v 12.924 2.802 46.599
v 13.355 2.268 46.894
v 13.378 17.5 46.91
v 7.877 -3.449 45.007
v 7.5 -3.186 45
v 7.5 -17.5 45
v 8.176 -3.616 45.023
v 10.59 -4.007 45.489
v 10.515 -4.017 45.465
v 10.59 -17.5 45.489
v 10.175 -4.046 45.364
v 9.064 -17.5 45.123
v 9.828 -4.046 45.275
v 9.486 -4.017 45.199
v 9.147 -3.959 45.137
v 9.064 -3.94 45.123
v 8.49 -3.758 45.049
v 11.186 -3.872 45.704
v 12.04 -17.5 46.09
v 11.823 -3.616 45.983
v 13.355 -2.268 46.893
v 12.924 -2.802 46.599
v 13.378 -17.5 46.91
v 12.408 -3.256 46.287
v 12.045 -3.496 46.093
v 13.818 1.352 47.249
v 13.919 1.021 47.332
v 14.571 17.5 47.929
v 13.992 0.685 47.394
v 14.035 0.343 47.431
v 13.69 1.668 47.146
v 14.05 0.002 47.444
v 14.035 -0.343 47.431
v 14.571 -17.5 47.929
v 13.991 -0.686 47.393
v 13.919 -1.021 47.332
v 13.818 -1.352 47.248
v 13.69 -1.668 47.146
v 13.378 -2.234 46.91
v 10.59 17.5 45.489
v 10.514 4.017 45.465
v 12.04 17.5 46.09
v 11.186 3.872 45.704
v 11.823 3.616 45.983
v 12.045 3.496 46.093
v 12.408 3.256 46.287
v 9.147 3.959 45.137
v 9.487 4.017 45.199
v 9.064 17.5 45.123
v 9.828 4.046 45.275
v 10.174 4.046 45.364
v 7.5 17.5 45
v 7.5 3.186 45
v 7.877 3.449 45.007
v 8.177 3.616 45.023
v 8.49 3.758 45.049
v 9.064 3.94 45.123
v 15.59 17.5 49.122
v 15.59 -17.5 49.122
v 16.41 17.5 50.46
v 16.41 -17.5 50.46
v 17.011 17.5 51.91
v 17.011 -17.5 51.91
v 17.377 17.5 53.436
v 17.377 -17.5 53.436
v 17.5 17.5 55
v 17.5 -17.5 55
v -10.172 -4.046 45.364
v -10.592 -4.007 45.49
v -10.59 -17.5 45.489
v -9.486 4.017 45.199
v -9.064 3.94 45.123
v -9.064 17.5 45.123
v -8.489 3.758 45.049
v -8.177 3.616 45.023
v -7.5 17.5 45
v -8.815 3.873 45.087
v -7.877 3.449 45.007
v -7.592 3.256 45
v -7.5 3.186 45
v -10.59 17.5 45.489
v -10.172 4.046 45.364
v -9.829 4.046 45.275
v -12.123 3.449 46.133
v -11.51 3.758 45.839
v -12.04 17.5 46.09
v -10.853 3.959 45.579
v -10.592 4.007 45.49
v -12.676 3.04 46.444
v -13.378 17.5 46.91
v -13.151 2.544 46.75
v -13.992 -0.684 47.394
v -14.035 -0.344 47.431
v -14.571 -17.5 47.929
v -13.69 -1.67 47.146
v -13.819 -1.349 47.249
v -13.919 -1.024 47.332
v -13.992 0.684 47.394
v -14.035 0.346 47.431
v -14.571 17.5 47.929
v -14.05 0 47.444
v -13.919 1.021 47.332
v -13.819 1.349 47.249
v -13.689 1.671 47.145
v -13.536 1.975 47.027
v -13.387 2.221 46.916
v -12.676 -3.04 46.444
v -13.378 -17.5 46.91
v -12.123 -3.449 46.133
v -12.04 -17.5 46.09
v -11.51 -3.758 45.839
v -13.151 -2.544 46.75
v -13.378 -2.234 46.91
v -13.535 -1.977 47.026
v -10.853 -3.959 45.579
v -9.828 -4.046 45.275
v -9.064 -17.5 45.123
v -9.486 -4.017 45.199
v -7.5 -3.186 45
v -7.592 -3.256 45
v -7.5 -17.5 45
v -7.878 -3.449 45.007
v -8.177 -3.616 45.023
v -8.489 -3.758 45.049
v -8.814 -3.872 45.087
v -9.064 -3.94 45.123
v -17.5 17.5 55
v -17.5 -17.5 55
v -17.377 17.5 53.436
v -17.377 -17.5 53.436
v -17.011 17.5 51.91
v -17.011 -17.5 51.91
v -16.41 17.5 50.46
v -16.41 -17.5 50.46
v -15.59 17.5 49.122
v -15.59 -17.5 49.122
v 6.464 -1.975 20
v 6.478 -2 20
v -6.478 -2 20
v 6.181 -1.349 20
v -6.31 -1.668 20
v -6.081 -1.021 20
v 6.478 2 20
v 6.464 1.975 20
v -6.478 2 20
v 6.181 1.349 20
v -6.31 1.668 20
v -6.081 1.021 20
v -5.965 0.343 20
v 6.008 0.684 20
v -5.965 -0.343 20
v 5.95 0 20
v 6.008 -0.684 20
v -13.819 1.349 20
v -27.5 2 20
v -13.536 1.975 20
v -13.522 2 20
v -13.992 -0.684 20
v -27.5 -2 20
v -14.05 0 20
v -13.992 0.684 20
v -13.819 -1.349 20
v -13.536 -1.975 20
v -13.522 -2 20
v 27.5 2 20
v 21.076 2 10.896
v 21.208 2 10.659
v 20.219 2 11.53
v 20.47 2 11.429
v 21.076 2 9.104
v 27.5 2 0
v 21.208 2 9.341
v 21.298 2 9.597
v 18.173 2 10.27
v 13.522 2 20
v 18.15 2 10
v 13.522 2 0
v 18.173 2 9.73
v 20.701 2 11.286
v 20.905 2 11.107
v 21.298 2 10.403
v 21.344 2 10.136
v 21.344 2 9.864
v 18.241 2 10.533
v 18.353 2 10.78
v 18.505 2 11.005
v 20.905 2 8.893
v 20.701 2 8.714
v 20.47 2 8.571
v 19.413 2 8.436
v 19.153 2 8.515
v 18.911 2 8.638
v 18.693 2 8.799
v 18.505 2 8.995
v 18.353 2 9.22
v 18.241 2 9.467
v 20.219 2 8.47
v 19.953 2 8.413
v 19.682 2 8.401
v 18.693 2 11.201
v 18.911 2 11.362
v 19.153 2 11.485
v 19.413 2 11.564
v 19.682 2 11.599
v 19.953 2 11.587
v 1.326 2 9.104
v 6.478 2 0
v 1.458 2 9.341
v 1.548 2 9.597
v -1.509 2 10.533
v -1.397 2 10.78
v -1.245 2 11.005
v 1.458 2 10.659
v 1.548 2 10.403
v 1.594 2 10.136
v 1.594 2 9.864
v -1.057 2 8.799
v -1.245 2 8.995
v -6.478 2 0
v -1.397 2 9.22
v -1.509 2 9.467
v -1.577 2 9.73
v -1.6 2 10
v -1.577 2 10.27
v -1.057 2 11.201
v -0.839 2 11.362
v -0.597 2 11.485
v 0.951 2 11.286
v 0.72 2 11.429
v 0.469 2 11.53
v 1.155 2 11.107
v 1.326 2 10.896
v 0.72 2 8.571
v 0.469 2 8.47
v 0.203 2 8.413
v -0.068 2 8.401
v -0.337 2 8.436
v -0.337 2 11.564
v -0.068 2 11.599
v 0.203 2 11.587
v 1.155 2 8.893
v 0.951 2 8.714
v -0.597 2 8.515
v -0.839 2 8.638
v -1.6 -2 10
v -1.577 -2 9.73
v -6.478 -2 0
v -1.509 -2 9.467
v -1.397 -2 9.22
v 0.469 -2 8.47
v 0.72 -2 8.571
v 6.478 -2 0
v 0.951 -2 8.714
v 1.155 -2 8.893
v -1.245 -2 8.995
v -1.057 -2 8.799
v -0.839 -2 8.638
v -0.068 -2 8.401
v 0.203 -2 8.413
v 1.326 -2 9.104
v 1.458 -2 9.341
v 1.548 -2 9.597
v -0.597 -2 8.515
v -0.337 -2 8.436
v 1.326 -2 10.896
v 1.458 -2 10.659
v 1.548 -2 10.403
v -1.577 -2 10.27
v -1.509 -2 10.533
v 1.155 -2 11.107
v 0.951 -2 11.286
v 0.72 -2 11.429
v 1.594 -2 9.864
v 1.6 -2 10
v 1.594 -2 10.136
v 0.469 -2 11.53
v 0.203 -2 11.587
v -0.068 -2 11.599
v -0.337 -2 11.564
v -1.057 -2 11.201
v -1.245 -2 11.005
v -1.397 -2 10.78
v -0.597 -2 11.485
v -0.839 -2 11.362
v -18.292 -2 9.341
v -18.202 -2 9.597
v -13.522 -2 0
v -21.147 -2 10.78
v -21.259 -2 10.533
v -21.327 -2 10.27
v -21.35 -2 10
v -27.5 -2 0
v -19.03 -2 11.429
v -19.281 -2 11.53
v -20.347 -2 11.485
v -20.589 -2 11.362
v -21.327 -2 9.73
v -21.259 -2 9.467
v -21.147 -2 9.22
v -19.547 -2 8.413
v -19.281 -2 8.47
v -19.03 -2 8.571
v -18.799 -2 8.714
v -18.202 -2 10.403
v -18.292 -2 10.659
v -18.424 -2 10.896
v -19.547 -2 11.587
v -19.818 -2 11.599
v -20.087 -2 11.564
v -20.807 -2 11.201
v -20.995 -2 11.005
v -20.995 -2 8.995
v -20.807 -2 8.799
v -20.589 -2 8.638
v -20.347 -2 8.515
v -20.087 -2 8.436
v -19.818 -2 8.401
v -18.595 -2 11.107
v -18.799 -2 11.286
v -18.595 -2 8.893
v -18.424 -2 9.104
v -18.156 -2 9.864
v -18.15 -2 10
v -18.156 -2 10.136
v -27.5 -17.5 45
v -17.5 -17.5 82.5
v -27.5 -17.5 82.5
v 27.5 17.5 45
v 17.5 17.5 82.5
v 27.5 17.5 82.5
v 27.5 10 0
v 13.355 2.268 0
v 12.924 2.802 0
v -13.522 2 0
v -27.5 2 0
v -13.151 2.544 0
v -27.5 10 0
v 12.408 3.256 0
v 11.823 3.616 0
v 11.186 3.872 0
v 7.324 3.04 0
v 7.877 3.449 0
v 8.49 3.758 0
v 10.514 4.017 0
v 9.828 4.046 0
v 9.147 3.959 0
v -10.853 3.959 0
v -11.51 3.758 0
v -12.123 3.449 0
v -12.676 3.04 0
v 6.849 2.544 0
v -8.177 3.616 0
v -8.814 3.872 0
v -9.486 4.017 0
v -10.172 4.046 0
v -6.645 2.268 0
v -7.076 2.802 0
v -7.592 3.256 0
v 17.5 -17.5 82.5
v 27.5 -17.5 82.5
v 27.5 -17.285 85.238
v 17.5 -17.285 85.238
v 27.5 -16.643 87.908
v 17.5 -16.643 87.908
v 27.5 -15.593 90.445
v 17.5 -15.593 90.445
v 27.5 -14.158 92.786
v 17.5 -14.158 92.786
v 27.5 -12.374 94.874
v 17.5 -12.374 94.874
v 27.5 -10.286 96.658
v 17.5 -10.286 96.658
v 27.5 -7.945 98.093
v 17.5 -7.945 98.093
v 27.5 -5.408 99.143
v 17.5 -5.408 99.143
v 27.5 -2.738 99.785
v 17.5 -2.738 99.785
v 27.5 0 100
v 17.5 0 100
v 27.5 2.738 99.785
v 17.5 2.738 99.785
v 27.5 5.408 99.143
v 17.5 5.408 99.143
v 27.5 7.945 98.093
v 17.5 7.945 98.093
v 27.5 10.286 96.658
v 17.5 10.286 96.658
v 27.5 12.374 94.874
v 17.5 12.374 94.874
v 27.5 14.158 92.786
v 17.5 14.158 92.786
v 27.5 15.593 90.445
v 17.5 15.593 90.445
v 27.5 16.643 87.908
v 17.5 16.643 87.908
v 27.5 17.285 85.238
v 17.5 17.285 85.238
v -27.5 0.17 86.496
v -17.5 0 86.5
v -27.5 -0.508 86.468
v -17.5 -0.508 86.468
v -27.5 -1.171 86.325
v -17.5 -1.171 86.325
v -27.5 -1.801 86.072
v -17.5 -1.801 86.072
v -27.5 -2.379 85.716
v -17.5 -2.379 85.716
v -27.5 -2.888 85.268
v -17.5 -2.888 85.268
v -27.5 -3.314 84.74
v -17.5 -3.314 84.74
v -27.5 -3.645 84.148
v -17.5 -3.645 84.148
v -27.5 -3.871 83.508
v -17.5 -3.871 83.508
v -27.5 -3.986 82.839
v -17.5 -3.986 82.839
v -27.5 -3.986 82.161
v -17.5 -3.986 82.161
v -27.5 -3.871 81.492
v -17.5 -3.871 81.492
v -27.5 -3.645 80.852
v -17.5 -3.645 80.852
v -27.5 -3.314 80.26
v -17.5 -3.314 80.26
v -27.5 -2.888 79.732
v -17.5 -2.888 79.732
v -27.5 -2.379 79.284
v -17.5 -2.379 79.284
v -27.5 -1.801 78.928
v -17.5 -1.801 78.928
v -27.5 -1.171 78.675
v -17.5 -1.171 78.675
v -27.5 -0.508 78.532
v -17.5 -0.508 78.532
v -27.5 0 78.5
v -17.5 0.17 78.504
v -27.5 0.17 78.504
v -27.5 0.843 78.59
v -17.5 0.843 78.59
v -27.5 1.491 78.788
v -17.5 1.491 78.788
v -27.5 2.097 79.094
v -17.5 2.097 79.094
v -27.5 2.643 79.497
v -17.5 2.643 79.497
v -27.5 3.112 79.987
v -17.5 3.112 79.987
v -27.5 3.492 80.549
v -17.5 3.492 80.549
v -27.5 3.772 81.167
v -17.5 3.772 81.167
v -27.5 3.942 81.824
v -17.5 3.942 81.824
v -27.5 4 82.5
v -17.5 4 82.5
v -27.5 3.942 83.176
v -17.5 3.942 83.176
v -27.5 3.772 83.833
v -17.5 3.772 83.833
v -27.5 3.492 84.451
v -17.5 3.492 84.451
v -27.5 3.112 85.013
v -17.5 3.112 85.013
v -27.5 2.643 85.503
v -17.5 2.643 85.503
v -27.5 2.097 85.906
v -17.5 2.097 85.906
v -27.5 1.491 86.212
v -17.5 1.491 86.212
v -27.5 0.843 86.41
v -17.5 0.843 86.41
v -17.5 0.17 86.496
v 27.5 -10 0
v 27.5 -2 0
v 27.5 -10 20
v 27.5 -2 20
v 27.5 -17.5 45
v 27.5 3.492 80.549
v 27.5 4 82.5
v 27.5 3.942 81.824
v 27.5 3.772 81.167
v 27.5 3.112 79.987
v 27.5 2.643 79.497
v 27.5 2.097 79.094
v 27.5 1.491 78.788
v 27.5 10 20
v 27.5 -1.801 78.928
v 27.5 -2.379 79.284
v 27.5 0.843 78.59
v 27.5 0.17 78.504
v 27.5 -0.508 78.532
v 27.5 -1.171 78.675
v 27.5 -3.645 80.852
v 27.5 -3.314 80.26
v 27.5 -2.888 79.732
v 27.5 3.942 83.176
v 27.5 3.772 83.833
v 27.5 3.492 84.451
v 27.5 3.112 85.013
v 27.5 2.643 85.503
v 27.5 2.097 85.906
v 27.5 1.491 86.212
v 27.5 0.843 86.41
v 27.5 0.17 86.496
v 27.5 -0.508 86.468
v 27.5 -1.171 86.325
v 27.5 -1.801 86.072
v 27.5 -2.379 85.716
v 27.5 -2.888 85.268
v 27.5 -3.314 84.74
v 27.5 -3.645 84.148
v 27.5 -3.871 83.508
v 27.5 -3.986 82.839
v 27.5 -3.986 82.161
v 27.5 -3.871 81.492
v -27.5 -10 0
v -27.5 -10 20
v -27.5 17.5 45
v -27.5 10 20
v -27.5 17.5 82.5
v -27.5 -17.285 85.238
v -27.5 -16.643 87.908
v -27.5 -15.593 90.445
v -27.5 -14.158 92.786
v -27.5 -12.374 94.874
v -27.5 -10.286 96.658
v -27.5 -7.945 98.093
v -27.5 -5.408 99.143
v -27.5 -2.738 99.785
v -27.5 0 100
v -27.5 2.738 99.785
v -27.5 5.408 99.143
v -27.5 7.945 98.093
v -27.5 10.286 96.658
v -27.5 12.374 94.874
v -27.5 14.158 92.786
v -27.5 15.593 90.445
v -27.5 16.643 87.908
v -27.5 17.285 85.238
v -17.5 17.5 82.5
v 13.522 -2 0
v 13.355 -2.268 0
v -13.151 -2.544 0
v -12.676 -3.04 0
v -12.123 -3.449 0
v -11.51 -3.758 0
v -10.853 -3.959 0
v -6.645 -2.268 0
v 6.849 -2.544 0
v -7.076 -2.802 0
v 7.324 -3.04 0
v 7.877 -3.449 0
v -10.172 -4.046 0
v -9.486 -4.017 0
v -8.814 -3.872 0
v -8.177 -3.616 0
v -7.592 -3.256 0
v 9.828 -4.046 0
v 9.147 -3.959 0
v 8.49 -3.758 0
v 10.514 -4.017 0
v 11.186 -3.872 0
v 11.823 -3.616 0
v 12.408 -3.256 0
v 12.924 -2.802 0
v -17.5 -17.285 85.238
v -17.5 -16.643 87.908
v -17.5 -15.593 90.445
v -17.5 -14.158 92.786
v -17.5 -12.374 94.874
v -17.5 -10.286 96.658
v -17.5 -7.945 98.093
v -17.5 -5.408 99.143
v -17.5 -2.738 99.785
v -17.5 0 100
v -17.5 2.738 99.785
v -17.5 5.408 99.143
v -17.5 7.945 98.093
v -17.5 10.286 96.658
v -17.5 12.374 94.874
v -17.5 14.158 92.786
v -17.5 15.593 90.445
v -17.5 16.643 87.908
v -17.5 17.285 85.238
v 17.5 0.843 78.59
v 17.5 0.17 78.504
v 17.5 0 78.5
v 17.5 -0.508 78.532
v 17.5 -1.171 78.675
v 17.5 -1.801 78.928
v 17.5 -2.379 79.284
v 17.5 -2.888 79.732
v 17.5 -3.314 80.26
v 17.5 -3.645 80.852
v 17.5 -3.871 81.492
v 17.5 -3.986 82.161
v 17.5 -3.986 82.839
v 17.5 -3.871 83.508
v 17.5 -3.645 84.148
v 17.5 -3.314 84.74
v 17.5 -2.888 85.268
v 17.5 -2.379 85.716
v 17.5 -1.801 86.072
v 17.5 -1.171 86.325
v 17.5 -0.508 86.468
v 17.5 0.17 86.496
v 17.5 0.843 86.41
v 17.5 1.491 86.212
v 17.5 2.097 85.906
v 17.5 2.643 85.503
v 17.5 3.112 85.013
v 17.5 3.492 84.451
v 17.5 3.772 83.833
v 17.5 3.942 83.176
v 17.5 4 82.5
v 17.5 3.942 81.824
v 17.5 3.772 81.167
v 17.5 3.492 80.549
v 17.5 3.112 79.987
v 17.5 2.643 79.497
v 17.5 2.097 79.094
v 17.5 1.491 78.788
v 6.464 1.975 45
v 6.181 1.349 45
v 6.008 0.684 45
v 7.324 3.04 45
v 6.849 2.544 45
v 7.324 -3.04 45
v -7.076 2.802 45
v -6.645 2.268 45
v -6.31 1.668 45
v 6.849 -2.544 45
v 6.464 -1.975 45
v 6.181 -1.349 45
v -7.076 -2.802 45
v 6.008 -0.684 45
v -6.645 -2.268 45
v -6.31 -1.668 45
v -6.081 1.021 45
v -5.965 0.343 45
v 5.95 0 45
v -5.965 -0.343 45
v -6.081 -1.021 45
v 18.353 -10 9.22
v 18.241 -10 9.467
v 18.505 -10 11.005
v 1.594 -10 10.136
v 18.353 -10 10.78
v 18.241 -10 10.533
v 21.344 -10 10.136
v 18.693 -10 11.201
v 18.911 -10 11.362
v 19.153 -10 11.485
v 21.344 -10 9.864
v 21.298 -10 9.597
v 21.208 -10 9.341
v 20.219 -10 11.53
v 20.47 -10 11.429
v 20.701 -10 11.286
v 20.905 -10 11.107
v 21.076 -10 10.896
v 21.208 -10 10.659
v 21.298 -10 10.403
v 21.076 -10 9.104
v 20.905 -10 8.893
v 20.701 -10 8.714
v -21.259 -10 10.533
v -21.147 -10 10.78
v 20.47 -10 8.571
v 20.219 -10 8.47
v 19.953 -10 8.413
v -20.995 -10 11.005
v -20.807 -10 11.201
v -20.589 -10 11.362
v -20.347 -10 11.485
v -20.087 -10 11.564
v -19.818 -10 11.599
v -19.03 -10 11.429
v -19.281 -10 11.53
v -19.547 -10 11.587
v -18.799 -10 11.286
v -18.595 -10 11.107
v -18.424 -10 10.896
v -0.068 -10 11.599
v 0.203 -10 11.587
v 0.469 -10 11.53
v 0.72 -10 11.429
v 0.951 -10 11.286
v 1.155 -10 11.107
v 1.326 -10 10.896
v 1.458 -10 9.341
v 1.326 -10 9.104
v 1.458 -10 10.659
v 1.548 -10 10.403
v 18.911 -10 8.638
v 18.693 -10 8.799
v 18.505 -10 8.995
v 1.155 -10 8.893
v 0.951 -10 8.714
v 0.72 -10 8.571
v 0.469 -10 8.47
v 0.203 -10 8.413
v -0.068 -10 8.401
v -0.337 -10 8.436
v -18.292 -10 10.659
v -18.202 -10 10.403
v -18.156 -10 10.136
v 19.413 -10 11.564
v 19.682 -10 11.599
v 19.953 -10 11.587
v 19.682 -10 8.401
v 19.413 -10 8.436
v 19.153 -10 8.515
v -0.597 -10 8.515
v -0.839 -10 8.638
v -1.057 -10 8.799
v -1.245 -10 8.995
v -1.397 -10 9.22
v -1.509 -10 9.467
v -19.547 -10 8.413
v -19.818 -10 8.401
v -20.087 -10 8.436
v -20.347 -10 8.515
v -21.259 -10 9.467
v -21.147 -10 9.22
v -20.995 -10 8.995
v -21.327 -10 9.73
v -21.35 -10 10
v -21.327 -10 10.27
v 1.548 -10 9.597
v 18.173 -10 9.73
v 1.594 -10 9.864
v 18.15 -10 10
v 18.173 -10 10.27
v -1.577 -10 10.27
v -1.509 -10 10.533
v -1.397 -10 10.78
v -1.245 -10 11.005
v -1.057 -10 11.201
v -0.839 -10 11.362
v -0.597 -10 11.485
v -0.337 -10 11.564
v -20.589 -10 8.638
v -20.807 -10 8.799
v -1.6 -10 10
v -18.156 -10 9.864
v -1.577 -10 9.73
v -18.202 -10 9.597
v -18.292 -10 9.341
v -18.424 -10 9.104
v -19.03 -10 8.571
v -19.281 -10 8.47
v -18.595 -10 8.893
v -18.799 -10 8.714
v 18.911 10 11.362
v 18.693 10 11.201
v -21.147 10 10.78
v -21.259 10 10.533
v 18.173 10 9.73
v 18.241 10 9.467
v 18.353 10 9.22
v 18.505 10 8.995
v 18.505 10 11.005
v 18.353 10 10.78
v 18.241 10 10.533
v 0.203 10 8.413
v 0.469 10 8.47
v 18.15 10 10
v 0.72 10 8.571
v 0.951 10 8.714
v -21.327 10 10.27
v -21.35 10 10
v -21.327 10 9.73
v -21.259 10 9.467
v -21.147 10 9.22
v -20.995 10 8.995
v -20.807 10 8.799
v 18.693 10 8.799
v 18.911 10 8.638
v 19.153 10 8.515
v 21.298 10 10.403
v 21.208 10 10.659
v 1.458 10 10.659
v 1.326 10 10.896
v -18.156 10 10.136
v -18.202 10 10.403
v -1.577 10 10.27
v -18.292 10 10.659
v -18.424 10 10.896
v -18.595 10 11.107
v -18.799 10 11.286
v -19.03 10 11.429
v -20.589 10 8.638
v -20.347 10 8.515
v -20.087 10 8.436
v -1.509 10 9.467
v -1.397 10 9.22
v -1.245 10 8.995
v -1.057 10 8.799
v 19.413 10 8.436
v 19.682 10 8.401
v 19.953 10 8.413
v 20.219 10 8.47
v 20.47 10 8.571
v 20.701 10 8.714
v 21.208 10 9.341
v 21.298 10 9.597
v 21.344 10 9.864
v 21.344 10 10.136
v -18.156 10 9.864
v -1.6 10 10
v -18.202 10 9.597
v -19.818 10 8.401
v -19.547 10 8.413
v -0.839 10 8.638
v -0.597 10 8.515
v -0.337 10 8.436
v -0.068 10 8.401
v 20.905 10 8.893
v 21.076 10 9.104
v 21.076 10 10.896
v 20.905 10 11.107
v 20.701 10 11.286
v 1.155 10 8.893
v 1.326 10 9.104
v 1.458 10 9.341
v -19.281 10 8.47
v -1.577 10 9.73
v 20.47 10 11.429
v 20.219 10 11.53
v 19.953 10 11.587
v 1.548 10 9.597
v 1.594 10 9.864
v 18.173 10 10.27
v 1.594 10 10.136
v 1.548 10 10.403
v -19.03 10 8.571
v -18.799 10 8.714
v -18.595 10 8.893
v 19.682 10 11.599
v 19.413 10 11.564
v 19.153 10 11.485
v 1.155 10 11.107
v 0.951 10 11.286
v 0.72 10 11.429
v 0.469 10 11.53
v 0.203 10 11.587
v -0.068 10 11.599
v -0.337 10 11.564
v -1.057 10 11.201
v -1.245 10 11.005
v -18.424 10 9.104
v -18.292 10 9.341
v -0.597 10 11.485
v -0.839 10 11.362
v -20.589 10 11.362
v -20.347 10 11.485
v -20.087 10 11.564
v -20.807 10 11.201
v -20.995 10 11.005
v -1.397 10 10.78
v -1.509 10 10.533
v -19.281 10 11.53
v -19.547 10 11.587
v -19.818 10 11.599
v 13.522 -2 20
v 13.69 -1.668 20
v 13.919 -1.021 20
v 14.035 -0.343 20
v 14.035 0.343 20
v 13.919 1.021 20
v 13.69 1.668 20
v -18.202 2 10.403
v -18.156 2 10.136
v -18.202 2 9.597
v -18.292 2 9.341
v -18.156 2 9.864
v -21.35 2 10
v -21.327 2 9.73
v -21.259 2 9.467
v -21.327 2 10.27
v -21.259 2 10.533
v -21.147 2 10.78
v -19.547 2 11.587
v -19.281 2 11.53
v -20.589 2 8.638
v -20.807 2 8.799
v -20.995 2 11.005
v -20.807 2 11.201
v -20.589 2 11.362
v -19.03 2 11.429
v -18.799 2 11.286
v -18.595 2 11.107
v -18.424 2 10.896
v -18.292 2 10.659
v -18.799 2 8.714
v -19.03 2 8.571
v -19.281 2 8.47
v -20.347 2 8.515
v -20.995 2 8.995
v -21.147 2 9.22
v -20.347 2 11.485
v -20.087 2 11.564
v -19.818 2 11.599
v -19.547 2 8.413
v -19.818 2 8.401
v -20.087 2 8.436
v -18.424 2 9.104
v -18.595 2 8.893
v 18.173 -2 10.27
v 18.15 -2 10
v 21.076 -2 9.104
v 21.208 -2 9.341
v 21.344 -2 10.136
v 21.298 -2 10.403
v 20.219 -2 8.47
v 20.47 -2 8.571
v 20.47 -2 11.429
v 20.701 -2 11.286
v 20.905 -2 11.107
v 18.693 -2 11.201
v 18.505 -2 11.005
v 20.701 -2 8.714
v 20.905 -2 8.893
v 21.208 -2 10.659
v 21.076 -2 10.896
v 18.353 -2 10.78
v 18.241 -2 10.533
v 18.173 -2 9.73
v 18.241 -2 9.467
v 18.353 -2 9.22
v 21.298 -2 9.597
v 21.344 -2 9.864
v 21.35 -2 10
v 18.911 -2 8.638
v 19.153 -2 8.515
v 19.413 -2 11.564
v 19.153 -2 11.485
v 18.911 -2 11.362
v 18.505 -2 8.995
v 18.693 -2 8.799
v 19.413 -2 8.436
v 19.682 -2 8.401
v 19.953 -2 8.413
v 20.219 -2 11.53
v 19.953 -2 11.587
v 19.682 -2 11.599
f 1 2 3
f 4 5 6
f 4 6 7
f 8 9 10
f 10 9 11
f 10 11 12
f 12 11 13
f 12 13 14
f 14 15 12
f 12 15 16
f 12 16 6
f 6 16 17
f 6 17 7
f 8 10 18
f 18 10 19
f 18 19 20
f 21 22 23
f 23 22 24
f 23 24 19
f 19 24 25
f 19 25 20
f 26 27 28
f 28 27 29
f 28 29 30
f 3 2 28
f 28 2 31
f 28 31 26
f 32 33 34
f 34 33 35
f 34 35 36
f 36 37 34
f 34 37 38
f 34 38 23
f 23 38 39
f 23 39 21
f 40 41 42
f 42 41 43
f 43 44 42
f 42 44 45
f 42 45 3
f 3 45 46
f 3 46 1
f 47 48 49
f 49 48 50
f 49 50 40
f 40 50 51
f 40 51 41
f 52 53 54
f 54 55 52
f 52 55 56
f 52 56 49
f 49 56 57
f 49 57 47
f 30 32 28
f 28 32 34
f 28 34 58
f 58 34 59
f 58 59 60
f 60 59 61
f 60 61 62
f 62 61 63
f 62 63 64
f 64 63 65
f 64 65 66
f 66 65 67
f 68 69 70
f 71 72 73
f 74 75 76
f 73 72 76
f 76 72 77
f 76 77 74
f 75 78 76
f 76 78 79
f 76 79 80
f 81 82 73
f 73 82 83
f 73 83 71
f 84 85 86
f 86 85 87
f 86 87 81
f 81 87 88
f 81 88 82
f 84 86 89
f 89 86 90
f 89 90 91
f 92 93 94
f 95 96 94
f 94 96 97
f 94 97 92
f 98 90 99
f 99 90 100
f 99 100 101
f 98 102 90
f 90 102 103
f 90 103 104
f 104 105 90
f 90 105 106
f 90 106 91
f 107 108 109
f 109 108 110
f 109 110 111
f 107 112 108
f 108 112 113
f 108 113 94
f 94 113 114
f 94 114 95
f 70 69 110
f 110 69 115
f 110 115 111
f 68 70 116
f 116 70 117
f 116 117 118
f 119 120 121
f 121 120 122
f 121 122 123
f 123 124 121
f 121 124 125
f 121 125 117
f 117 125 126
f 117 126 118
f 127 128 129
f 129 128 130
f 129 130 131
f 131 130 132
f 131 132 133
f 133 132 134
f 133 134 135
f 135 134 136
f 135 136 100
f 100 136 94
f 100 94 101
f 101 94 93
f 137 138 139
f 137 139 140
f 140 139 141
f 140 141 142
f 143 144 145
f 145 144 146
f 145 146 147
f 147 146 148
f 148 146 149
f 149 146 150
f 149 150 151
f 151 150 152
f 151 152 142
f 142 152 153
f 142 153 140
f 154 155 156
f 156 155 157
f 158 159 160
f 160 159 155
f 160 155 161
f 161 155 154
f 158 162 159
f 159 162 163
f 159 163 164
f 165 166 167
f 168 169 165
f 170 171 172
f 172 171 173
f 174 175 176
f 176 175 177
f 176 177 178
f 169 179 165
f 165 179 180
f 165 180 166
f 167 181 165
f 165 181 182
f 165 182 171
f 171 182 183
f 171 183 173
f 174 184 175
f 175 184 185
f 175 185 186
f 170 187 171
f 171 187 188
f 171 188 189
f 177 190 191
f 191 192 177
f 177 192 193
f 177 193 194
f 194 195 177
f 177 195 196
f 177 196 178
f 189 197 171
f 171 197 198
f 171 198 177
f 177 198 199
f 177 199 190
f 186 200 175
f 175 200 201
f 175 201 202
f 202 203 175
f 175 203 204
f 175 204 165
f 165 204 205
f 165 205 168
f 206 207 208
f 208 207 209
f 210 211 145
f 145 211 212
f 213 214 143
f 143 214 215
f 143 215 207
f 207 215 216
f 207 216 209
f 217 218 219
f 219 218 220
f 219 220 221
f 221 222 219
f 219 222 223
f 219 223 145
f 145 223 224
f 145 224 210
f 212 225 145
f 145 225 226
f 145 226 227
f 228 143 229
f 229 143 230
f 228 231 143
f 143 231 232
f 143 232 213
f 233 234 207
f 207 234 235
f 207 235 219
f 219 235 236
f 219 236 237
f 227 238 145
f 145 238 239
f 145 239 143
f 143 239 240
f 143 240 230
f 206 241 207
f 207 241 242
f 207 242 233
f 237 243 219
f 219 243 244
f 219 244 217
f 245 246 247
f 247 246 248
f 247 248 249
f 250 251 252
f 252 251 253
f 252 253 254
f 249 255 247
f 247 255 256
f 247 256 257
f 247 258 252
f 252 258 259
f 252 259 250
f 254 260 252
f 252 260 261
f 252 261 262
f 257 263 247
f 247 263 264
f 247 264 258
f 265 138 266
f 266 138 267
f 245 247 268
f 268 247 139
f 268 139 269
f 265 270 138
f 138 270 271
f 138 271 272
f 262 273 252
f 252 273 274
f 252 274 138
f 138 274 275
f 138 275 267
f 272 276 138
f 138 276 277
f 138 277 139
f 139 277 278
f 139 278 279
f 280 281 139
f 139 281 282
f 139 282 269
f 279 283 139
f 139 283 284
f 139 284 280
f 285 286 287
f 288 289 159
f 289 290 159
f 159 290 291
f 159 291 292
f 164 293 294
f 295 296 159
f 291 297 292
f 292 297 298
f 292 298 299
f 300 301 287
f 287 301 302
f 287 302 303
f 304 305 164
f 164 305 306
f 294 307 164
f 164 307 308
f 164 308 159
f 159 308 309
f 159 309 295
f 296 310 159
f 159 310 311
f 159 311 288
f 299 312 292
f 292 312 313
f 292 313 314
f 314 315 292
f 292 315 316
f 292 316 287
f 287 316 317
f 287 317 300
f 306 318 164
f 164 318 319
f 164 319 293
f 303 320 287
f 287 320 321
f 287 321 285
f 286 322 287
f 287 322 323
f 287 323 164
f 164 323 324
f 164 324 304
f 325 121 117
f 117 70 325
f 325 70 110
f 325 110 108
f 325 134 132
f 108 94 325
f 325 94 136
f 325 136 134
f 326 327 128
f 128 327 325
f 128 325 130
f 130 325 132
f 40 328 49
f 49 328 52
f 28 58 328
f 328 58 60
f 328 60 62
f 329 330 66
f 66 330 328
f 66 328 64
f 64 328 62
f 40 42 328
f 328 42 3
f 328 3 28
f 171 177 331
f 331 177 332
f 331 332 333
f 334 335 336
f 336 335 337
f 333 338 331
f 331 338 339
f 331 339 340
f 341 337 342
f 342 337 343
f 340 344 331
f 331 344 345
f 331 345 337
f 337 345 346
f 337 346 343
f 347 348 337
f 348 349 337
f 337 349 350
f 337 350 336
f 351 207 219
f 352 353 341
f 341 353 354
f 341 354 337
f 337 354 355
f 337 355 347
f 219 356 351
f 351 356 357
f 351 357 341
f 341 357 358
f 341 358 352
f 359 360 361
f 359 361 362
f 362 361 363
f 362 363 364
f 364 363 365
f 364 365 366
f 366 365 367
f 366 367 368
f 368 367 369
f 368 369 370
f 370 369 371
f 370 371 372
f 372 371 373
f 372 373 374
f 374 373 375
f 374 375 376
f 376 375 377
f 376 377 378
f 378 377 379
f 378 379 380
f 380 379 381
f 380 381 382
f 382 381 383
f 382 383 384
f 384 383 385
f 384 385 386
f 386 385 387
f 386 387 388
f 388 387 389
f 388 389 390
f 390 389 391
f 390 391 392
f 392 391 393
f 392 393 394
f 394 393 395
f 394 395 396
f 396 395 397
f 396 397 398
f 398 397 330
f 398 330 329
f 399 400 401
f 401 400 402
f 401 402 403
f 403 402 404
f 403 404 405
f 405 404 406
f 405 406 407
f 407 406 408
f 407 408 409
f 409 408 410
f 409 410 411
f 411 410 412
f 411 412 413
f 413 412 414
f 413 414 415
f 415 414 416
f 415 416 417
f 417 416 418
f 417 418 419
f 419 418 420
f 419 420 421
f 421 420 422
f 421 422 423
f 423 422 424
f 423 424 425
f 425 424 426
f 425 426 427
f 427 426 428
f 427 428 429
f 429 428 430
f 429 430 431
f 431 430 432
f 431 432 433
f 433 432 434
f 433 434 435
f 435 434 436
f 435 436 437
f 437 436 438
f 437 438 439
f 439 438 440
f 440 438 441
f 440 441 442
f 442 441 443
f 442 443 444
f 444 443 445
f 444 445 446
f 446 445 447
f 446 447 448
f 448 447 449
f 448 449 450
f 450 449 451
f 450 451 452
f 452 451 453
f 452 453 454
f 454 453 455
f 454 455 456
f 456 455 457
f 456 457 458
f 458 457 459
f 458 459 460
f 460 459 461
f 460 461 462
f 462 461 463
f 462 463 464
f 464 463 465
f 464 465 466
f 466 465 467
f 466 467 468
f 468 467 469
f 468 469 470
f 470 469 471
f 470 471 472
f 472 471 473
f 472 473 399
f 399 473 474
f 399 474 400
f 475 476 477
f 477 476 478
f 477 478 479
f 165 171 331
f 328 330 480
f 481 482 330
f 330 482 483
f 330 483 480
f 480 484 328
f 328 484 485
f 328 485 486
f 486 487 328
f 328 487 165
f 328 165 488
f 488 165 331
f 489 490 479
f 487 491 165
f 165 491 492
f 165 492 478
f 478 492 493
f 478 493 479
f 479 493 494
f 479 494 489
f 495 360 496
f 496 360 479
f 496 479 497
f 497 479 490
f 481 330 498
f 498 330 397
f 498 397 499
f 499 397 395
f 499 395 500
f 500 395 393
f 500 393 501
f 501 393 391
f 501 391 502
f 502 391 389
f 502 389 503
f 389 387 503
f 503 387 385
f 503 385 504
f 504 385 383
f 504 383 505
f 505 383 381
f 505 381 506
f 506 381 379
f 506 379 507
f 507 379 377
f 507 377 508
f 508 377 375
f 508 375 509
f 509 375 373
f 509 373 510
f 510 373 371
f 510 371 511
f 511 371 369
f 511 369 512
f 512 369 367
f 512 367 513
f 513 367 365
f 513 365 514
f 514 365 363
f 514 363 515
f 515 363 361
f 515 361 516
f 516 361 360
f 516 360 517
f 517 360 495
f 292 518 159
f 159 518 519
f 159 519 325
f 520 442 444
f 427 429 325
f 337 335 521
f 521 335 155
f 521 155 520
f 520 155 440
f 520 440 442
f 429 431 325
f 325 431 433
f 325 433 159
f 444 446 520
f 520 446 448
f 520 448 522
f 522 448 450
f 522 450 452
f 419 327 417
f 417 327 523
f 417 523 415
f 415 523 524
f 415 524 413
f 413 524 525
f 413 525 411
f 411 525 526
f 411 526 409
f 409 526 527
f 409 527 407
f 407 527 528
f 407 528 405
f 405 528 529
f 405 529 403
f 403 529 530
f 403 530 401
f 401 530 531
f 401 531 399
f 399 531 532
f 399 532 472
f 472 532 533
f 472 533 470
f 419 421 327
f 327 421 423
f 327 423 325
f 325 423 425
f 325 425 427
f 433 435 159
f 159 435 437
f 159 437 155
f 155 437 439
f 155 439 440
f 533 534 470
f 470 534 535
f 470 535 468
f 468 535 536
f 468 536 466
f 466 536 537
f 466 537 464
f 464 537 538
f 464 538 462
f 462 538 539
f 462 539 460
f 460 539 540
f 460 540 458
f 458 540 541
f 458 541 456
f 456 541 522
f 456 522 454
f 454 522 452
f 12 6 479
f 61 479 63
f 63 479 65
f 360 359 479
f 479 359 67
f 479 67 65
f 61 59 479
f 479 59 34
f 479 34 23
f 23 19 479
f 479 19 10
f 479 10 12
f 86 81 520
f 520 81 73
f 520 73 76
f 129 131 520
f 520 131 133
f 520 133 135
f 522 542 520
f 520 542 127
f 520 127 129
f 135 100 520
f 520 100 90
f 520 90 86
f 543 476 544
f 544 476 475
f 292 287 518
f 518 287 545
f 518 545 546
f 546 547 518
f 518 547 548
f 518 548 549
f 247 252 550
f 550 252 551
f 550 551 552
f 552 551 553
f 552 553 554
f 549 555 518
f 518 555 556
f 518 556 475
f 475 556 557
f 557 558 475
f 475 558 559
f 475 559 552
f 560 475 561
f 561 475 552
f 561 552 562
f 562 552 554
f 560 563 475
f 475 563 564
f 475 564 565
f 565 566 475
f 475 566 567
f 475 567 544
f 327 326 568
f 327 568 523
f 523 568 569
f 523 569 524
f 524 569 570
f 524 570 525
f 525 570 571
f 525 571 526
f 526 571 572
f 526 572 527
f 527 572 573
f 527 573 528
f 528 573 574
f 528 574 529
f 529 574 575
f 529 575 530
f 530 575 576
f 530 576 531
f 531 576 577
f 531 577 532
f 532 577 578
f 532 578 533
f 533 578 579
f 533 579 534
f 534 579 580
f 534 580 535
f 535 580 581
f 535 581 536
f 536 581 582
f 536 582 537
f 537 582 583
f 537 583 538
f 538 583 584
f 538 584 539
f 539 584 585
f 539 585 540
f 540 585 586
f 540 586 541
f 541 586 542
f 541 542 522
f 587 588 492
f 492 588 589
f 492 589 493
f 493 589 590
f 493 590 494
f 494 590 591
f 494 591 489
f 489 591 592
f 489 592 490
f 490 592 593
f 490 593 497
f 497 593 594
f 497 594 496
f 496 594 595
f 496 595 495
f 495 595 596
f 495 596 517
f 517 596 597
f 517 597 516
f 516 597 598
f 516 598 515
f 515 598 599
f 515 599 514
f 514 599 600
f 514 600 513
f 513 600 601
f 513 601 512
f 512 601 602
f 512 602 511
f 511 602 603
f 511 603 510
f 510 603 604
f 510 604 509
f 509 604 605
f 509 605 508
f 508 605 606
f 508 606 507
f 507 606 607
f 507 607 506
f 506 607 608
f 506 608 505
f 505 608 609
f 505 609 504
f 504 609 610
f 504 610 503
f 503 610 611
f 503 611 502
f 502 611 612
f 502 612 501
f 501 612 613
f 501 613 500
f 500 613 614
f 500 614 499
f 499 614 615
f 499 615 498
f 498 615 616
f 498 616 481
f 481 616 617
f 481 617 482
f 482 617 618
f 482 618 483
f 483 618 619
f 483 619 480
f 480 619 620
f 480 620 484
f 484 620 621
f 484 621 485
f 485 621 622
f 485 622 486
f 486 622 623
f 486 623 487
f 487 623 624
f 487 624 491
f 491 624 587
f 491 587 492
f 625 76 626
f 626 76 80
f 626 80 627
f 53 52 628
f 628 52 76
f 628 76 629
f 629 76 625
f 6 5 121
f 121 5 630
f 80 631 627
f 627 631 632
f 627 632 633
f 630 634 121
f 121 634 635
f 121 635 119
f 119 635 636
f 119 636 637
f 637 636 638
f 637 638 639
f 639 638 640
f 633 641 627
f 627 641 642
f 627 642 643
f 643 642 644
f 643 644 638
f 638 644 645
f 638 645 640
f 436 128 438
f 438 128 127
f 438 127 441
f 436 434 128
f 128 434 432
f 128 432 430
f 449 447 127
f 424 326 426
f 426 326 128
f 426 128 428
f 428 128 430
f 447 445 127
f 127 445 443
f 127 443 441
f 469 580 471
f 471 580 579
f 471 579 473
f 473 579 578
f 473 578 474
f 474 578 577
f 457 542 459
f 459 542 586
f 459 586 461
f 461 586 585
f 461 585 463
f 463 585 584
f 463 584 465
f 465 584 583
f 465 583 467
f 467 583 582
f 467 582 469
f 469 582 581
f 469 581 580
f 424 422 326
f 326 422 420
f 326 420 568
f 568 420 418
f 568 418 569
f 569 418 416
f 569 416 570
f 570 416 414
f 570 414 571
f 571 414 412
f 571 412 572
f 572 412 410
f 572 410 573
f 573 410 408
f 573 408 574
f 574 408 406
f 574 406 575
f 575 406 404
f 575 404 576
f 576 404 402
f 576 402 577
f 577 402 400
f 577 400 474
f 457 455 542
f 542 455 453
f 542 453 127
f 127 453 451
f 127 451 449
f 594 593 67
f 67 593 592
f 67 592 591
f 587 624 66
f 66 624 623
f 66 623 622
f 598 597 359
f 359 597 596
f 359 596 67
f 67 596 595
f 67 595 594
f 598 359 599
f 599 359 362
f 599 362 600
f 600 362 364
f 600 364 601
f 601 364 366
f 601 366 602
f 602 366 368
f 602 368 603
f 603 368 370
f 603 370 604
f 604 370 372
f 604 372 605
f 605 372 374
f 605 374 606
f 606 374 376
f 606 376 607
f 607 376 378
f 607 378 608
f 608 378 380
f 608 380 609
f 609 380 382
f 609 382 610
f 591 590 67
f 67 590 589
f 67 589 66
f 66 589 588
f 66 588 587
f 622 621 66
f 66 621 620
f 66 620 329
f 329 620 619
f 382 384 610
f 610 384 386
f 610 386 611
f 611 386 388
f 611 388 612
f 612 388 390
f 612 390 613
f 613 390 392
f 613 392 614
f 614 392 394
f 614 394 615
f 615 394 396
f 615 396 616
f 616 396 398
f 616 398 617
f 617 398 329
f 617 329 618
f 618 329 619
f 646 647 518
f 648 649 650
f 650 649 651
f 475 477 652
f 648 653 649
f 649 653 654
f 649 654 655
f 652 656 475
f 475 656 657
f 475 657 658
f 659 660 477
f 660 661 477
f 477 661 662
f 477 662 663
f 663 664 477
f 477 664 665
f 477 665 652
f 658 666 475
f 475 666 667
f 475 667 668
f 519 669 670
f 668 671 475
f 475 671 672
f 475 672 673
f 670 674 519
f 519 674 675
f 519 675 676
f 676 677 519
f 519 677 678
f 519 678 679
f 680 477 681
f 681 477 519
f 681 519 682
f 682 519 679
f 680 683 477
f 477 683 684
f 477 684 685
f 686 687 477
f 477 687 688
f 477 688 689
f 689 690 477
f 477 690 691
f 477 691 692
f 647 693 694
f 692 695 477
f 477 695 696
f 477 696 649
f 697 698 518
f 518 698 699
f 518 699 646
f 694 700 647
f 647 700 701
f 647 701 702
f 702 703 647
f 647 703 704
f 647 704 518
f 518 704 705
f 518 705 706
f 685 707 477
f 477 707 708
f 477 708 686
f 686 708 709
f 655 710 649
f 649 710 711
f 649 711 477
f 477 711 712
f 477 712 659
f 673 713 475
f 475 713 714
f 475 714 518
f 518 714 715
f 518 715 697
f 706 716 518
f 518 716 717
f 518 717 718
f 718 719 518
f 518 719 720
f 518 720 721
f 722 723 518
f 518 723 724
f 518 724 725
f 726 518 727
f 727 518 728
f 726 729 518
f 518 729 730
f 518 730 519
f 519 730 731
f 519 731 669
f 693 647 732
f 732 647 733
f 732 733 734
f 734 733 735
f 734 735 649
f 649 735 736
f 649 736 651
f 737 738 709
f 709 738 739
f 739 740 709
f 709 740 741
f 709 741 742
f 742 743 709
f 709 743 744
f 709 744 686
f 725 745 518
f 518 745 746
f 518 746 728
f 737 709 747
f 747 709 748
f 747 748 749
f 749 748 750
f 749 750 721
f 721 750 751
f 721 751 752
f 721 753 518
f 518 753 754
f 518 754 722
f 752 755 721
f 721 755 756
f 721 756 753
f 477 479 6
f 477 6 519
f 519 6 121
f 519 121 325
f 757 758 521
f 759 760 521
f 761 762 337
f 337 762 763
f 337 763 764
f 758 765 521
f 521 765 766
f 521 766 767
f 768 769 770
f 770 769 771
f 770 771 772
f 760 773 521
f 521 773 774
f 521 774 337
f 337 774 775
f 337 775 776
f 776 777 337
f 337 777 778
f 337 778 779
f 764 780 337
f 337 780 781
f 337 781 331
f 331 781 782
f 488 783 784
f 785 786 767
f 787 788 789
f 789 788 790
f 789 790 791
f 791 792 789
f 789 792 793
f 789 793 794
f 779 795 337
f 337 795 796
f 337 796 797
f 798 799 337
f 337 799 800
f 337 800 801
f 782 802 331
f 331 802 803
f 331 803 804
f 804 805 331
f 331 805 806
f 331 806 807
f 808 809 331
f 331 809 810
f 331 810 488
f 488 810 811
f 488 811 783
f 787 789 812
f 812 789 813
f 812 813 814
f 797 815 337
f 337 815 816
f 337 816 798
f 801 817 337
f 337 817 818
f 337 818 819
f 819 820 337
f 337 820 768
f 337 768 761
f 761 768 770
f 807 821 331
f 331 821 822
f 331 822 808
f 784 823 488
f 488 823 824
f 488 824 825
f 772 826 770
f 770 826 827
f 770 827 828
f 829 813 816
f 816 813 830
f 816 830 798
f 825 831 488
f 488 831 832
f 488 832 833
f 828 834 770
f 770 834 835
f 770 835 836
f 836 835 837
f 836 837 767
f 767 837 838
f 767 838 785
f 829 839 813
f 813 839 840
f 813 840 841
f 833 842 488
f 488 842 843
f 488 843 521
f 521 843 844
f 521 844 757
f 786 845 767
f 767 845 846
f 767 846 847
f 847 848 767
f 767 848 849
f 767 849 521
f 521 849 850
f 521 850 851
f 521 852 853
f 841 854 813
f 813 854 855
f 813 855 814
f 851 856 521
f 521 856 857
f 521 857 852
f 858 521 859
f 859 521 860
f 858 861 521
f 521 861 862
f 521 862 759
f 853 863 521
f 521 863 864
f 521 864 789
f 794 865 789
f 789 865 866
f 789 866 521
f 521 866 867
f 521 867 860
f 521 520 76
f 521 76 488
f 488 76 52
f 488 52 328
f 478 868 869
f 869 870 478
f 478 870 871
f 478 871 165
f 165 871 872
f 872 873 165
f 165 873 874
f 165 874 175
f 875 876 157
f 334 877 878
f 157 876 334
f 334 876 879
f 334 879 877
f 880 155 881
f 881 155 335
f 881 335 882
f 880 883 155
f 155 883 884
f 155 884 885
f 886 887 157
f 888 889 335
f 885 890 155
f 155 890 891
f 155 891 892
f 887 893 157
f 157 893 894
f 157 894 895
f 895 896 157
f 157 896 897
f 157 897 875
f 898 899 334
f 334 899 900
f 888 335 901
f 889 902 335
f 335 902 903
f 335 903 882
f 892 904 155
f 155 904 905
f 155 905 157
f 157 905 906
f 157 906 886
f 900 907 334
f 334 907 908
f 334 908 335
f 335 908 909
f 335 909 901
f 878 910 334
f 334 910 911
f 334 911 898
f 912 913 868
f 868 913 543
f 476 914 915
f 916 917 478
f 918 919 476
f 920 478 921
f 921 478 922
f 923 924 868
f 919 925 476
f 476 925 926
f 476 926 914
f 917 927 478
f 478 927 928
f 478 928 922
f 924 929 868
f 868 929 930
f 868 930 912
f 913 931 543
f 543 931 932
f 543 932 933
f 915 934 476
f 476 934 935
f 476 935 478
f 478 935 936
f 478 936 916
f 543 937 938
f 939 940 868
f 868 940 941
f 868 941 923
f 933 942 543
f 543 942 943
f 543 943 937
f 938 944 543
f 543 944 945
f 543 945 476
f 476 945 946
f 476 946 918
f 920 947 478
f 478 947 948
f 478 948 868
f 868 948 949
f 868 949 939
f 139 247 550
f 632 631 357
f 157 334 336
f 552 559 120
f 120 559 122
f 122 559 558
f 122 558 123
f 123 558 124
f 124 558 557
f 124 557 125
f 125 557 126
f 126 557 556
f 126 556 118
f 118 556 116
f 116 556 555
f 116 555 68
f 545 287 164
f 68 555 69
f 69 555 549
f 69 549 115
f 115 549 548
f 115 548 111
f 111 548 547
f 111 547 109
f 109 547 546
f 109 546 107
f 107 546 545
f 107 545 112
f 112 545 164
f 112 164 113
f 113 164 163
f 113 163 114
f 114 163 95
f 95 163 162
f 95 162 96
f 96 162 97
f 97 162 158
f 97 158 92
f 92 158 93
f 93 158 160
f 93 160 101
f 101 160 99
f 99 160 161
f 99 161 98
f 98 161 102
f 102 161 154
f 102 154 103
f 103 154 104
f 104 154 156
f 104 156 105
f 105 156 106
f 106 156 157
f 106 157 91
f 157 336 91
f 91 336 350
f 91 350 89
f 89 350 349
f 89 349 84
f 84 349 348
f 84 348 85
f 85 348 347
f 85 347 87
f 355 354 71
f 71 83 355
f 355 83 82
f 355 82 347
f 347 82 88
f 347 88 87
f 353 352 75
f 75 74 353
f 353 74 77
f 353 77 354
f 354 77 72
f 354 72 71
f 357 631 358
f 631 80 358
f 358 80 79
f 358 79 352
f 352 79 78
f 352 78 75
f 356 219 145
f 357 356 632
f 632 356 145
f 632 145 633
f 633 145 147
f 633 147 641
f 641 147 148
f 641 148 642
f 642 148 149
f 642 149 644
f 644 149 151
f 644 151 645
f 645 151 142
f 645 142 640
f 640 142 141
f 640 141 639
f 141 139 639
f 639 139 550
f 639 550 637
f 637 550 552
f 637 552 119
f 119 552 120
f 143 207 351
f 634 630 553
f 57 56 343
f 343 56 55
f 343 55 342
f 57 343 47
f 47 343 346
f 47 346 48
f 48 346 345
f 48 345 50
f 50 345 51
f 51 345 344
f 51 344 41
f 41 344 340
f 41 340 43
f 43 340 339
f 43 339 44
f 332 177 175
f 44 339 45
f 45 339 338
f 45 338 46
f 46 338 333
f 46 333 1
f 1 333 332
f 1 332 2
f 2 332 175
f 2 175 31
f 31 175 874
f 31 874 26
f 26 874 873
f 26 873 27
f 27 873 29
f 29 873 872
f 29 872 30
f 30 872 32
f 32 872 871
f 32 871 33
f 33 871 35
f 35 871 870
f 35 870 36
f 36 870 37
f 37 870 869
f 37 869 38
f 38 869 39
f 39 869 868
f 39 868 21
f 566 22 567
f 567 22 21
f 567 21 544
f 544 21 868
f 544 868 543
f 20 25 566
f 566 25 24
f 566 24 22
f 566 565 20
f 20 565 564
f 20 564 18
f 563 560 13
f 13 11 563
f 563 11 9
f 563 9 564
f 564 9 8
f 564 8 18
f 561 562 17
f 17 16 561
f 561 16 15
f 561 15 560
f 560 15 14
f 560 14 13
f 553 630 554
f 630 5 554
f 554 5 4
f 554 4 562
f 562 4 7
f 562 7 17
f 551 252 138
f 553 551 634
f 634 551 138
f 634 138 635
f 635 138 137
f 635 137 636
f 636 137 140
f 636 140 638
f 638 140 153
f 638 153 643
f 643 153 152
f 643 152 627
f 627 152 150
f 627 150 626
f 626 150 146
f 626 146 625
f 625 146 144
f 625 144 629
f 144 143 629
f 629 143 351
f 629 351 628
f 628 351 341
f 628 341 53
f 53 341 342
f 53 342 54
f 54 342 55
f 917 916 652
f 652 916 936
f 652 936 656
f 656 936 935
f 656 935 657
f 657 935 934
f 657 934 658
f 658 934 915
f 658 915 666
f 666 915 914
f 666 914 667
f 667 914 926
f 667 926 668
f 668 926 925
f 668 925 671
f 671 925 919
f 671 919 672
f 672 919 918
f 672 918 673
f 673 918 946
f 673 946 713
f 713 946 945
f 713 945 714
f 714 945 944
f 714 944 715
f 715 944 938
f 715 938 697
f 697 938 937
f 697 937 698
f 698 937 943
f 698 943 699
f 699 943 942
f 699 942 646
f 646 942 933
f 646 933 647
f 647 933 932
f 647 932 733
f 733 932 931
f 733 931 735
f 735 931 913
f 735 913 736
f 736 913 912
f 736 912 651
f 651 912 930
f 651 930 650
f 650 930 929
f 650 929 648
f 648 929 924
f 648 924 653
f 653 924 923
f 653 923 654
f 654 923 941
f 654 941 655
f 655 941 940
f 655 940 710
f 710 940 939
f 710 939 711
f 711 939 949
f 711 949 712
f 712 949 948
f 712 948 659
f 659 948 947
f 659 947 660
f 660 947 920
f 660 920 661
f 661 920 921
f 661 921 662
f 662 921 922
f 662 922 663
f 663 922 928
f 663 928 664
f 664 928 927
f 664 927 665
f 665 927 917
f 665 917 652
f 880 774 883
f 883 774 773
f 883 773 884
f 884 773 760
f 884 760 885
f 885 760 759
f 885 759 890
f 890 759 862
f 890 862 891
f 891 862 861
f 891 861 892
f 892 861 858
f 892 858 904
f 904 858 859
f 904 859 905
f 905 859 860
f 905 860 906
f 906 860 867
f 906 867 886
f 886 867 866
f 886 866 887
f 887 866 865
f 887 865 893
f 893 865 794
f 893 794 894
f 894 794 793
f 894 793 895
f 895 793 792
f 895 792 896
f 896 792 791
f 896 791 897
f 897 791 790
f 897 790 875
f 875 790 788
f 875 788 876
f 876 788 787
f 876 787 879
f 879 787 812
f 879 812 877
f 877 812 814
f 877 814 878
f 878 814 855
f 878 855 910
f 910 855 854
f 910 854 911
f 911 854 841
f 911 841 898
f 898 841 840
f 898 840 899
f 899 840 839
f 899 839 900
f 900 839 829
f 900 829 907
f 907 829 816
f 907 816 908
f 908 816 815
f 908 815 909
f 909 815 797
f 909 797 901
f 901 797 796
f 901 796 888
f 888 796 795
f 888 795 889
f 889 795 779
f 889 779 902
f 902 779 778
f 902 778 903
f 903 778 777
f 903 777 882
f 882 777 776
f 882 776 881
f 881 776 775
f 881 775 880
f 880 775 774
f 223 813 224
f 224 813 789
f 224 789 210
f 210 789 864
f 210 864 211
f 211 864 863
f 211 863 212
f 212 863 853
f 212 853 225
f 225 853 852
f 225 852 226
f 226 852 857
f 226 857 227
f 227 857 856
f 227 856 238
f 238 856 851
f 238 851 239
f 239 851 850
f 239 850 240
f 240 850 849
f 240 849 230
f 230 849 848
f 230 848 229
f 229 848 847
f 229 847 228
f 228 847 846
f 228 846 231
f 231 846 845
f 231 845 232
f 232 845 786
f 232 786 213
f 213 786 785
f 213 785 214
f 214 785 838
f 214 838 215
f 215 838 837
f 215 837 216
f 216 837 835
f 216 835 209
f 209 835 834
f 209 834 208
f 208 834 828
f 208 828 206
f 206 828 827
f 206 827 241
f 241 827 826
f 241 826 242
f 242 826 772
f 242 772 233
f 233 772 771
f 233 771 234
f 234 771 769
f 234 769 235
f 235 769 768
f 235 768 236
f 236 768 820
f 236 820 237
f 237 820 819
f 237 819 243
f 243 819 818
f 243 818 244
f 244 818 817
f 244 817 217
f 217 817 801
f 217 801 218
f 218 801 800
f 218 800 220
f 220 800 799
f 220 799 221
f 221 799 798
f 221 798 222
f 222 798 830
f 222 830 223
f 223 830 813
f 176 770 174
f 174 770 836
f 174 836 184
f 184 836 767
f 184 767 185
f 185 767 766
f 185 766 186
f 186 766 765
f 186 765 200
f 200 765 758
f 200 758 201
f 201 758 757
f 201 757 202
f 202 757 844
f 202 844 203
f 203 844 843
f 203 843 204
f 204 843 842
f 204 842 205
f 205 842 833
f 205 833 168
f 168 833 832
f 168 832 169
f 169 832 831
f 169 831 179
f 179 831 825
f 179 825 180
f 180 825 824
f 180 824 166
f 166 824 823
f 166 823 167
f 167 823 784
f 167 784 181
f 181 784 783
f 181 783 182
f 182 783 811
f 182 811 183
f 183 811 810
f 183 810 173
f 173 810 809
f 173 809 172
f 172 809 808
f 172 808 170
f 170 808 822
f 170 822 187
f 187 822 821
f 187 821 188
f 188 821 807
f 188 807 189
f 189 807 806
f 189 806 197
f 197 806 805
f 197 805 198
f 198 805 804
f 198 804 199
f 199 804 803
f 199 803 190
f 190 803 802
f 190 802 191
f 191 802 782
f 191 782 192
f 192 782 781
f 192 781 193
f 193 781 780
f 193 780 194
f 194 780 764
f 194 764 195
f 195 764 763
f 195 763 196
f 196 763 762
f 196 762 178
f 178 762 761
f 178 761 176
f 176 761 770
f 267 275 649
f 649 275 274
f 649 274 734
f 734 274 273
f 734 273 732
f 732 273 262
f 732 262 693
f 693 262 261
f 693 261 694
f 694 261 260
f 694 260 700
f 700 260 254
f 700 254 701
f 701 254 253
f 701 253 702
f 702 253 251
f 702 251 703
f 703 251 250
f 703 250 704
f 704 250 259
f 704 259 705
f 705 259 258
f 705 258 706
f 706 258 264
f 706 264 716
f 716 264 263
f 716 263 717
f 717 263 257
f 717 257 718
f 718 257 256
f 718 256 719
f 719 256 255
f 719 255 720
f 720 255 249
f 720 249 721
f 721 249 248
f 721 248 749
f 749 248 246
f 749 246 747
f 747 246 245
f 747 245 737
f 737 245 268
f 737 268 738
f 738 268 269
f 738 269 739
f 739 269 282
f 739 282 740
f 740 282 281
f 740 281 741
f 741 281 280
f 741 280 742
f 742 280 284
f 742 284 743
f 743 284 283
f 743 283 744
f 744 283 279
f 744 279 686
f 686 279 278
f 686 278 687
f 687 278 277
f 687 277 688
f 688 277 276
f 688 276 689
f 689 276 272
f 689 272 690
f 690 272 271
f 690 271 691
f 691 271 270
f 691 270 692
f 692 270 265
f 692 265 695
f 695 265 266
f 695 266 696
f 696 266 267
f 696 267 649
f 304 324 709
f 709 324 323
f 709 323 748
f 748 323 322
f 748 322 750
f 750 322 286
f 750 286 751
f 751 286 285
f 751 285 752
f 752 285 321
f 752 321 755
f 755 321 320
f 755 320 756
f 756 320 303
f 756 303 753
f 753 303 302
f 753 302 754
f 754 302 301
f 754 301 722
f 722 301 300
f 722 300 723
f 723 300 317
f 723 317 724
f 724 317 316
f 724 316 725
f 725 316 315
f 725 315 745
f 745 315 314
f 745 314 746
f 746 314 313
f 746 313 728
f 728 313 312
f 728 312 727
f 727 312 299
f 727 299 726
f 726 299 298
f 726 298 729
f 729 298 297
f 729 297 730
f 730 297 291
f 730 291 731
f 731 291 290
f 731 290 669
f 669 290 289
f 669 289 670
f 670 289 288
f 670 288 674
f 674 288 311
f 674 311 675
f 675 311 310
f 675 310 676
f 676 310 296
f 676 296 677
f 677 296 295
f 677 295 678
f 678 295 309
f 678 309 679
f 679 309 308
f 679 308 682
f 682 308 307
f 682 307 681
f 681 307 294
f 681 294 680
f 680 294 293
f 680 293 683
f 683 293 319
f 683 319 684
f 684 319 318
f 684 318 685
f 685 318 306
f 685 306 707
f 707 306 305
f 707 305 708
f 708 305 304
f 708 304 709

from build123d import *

# Parameters (mm, degrees)
CROQUIS1_W              = 55
CROQUIS1_H              = 35
SALIENTE_EXTRUIR1_DEPTH = 100
CROQUIS2_R              = 4
CORTAR_EXTRUIR1_DEPTH   = 100
CROQUIS3_W              = 35
CROQUIS3_H              = 55
CORTAR_EXTRUIR2_DEPTH   = 39
CROQUIS6_W              = 20
CROQUIS6_H              = 4
CORTAR_EXTRUIR3_DEPTH   = 55
CROQUIS7_R              = 4.05
CORTAR_EXTRUIR4_DEPTH   = 55
REDONDEO1_R             = 10
REDONDEO2_R             = 10
CROQUIS8_R              = 1.6
CORTAR_EXTRUIR5_DEPTH   = 20


with BuildPart() as part:
    # Croquis1 → Saliente-Extruir1 (new body)
    with BuildSketch(Plane.XY):
        Rectangle(CROQUIS1_W, CROQUIS1_H)
    extrude(amount=SALIENTE_EXTRUIR1_DEPTH)

    # Croquis2 → Cortar-Extruir1 (cut)
    with BuildSketch(Plane(origin=(27.5, 0, 0), x_dir=(0, 0, -1), z_dir=(1, 0, 0))):
        with Locations(Location((-82.5, 0, 0), (0, 0, 90))):
            Circle(CROQUIS2_R)
        with BuildLine():
            ThreePointArc((-100, 0), (-94.874368671, 12.374368671), (-82.5, 17.5))
            Line((-82.5, 17.5), (-100, 17.5))
            Line((-100, 17.5), (-100, 0))
        make_face()
        with BuildLine():
            ThreePointArc((-82.5, -17.5), (-94.874368671, -12.374368671), (-100, 0))
            Line((-100, 0), (-100, -17.5))
            Line((-100, -17.5), (-82.5, -17.5))
        make_face()
    extrude(amount=-CORTAR_EXTRUIR1_DEPTH, mode=Mode.SUBTRACT)

    # Croquis3 → Cortar-Extruir2 (cut)
    with BuildSketch(Plane(origin=(0, 17.5, 0), x_dir=(1, 0, 0), z_dir=(0, 1, 0))):
        with Locations((0, -72.5)):
            Rectangle(CROQUIS3_W, CROQUIS3_H)
    extrude(amount=-CORTAR_EXTRUIR2_DEPTH, mode=Mode.SUBTRACT)

    # Croquis6 → Cortar-Extruir3 (cut)
    with BuildSketch(Plane(origin=(27.5, 0, 0), x_dir=(0, 0, -1), z_dir=(1, 0, 0))):
        Polygon((-45, 17.5), (0, 17.5), (0, 10), (-20, 10), align=None)
        with Locations((-10, 0)):
            Rectangle(CROQUIS6_W, CROQUIS6_H)
        Polygon((-45, -17.5), (-20, -10), (0, -10), (0, -17.5), align=None)
    extrude(amount=-CORTAR_EXTRUIR3_DEPTH, mode=Mode.SUBTRACT)

    # Croquis7 → Cortar-Extruir4 (cut)
    with BuildSketch(Plane(origin=(0, 0, 0), x_dir=(-1, 0, 0), z_dir=(0, 0, -1))):
        with Locations((-10, 0)):
            Circle(CROQUIS7_R)
        with Locations((10, 0)):
            Circle(CROQUIS7_R)
    extrude(amount=-CORTAR_EXTRUIR4_DEPTH, mode=Mode.SUBTRACT)

    # Redondeo1
    # the kernel refuses this fillet: 10 mm, written as the material it adds along each edge
    with BuildSketch(Plane(origin=(-17.5, 17.5, 45), x_dir=(1, 0, 0), z_dir=(0, -1, 0))) as redondeo1_piece_1_section:
        with BuildLine():
            CenterArc((REDONDEO1_R, REDONDEO1_R), REDONDEO1_R, 180, 90)
            Line((0, REDONDEO1_R), (0, 0))
            Line((0, 0), (REDONDEO1_R, 0))
        make_face()
    redondeo1_piece_1 = extrude(amount=35, mode=Mode.PRIVATE)
    redondeo1_piece_1 = split(redondeo1_piece_1, bisect_by=Plane(origin=(-15.390656306, -16.700081338, 42.33360446), z_dir=(0, 0.9578262852211515, 0.2873478855663453)), keep=Keep.TOP, mode=Mode.PRIVATE)
    redondeo1_piece_1 = split(redondeo1_piece_1, bisect_by=Plane(origin=(-15.390656306, 16.700081275, 42.333604252), z_dir=(0, -0.9578262852211514, 0.28734788556634544)), keep=Keep.TOP, mode=Mode.PRIVATE)
    redondeo1_piece_1 = redondeo1_piece_1 - Plane(origin=(-10, 0, 47.343628748), x_dir=(-1, 0, 0), z_dir=(0, 0, -1)) * Cylinder(4.05, 110, mode=Mode.PRIVATE)
    add(redondeo1_piece_1)

    # Redondeo2
    # the kernel refuses this fillet: 10 mm, written as the material it adds along each edge
    with BuildSketch(Plane(origin=(17.5, 17.5, 45), x_dir=(0, 0, 1), z_dir=(0, -1, 0))) as redondeo2_piece_1_section:
        with BuildLine():
            CenterArc((REDONDEO2_R, REDONDEO2_R), REDONDEO2_R, 180, 90)
            Line((0, REDONDEO2_R), (0, 0))
            Line((0, 0), (REDONDEO2_R, 0))
        make_face()
    redondeo2_piece_1 = extrude(amount=35, mode=Mode.PRIVATE)
    redondeo2_piece_1 = redondeo2_piece_1 - Plane(origin=(10, 0, 47.343628624), x_dir=(-1, 0, 0), z_dir=(0, 0, -1)) * Cylinder(4.05, 110, mode=Mode.PRIVATE)
    redondeo2_piece_1 = split(redondeo2_piece_1, bisect_by=Plane(origin=(15.390657599, 16.700081065, 42.333603552), z_dir=(0, -0.9578262852211514, 0.28734788556634544)), keep=Keep.TOP, mode=Mode.PRIVATE)
    redondeo2_piece_1 = split(redondeo2_piece_1, bisect_by=Plane(origin=(15.390657599, -16.70008148, 42.333604932), z_dir=(0, 0.9578262852211515, 0.2873478855663453)), keep=Keep.TOP, mode=Mode.PRIVATE)
    add(redondeo2_piece_1)

    # Croquis8 → Cortar-Extruir5 (cut)
    with BuildSketch(Plane(origin=(0, 10, 0), x_dir=(1, 0, 0), z_dir=(0, 1, 0))):
        with Locations(Location((0, -10, 0), (0, 0, 180))):
            Circle(CROQUIS8_R)
        with Locations(Location((-19.75, -10, 0), (0, 0, 180))):
            Circle(CROQUIS8_R)
        with Locations(Location((19.75, -10, 0), (0, 0, 180))):
            Circle(CROQUIS8_R)
    extrude(amount=-CORTAR_EXTRUIR5_DEPTH, mode=Mode.SUBTRACT)


solid = part.part
